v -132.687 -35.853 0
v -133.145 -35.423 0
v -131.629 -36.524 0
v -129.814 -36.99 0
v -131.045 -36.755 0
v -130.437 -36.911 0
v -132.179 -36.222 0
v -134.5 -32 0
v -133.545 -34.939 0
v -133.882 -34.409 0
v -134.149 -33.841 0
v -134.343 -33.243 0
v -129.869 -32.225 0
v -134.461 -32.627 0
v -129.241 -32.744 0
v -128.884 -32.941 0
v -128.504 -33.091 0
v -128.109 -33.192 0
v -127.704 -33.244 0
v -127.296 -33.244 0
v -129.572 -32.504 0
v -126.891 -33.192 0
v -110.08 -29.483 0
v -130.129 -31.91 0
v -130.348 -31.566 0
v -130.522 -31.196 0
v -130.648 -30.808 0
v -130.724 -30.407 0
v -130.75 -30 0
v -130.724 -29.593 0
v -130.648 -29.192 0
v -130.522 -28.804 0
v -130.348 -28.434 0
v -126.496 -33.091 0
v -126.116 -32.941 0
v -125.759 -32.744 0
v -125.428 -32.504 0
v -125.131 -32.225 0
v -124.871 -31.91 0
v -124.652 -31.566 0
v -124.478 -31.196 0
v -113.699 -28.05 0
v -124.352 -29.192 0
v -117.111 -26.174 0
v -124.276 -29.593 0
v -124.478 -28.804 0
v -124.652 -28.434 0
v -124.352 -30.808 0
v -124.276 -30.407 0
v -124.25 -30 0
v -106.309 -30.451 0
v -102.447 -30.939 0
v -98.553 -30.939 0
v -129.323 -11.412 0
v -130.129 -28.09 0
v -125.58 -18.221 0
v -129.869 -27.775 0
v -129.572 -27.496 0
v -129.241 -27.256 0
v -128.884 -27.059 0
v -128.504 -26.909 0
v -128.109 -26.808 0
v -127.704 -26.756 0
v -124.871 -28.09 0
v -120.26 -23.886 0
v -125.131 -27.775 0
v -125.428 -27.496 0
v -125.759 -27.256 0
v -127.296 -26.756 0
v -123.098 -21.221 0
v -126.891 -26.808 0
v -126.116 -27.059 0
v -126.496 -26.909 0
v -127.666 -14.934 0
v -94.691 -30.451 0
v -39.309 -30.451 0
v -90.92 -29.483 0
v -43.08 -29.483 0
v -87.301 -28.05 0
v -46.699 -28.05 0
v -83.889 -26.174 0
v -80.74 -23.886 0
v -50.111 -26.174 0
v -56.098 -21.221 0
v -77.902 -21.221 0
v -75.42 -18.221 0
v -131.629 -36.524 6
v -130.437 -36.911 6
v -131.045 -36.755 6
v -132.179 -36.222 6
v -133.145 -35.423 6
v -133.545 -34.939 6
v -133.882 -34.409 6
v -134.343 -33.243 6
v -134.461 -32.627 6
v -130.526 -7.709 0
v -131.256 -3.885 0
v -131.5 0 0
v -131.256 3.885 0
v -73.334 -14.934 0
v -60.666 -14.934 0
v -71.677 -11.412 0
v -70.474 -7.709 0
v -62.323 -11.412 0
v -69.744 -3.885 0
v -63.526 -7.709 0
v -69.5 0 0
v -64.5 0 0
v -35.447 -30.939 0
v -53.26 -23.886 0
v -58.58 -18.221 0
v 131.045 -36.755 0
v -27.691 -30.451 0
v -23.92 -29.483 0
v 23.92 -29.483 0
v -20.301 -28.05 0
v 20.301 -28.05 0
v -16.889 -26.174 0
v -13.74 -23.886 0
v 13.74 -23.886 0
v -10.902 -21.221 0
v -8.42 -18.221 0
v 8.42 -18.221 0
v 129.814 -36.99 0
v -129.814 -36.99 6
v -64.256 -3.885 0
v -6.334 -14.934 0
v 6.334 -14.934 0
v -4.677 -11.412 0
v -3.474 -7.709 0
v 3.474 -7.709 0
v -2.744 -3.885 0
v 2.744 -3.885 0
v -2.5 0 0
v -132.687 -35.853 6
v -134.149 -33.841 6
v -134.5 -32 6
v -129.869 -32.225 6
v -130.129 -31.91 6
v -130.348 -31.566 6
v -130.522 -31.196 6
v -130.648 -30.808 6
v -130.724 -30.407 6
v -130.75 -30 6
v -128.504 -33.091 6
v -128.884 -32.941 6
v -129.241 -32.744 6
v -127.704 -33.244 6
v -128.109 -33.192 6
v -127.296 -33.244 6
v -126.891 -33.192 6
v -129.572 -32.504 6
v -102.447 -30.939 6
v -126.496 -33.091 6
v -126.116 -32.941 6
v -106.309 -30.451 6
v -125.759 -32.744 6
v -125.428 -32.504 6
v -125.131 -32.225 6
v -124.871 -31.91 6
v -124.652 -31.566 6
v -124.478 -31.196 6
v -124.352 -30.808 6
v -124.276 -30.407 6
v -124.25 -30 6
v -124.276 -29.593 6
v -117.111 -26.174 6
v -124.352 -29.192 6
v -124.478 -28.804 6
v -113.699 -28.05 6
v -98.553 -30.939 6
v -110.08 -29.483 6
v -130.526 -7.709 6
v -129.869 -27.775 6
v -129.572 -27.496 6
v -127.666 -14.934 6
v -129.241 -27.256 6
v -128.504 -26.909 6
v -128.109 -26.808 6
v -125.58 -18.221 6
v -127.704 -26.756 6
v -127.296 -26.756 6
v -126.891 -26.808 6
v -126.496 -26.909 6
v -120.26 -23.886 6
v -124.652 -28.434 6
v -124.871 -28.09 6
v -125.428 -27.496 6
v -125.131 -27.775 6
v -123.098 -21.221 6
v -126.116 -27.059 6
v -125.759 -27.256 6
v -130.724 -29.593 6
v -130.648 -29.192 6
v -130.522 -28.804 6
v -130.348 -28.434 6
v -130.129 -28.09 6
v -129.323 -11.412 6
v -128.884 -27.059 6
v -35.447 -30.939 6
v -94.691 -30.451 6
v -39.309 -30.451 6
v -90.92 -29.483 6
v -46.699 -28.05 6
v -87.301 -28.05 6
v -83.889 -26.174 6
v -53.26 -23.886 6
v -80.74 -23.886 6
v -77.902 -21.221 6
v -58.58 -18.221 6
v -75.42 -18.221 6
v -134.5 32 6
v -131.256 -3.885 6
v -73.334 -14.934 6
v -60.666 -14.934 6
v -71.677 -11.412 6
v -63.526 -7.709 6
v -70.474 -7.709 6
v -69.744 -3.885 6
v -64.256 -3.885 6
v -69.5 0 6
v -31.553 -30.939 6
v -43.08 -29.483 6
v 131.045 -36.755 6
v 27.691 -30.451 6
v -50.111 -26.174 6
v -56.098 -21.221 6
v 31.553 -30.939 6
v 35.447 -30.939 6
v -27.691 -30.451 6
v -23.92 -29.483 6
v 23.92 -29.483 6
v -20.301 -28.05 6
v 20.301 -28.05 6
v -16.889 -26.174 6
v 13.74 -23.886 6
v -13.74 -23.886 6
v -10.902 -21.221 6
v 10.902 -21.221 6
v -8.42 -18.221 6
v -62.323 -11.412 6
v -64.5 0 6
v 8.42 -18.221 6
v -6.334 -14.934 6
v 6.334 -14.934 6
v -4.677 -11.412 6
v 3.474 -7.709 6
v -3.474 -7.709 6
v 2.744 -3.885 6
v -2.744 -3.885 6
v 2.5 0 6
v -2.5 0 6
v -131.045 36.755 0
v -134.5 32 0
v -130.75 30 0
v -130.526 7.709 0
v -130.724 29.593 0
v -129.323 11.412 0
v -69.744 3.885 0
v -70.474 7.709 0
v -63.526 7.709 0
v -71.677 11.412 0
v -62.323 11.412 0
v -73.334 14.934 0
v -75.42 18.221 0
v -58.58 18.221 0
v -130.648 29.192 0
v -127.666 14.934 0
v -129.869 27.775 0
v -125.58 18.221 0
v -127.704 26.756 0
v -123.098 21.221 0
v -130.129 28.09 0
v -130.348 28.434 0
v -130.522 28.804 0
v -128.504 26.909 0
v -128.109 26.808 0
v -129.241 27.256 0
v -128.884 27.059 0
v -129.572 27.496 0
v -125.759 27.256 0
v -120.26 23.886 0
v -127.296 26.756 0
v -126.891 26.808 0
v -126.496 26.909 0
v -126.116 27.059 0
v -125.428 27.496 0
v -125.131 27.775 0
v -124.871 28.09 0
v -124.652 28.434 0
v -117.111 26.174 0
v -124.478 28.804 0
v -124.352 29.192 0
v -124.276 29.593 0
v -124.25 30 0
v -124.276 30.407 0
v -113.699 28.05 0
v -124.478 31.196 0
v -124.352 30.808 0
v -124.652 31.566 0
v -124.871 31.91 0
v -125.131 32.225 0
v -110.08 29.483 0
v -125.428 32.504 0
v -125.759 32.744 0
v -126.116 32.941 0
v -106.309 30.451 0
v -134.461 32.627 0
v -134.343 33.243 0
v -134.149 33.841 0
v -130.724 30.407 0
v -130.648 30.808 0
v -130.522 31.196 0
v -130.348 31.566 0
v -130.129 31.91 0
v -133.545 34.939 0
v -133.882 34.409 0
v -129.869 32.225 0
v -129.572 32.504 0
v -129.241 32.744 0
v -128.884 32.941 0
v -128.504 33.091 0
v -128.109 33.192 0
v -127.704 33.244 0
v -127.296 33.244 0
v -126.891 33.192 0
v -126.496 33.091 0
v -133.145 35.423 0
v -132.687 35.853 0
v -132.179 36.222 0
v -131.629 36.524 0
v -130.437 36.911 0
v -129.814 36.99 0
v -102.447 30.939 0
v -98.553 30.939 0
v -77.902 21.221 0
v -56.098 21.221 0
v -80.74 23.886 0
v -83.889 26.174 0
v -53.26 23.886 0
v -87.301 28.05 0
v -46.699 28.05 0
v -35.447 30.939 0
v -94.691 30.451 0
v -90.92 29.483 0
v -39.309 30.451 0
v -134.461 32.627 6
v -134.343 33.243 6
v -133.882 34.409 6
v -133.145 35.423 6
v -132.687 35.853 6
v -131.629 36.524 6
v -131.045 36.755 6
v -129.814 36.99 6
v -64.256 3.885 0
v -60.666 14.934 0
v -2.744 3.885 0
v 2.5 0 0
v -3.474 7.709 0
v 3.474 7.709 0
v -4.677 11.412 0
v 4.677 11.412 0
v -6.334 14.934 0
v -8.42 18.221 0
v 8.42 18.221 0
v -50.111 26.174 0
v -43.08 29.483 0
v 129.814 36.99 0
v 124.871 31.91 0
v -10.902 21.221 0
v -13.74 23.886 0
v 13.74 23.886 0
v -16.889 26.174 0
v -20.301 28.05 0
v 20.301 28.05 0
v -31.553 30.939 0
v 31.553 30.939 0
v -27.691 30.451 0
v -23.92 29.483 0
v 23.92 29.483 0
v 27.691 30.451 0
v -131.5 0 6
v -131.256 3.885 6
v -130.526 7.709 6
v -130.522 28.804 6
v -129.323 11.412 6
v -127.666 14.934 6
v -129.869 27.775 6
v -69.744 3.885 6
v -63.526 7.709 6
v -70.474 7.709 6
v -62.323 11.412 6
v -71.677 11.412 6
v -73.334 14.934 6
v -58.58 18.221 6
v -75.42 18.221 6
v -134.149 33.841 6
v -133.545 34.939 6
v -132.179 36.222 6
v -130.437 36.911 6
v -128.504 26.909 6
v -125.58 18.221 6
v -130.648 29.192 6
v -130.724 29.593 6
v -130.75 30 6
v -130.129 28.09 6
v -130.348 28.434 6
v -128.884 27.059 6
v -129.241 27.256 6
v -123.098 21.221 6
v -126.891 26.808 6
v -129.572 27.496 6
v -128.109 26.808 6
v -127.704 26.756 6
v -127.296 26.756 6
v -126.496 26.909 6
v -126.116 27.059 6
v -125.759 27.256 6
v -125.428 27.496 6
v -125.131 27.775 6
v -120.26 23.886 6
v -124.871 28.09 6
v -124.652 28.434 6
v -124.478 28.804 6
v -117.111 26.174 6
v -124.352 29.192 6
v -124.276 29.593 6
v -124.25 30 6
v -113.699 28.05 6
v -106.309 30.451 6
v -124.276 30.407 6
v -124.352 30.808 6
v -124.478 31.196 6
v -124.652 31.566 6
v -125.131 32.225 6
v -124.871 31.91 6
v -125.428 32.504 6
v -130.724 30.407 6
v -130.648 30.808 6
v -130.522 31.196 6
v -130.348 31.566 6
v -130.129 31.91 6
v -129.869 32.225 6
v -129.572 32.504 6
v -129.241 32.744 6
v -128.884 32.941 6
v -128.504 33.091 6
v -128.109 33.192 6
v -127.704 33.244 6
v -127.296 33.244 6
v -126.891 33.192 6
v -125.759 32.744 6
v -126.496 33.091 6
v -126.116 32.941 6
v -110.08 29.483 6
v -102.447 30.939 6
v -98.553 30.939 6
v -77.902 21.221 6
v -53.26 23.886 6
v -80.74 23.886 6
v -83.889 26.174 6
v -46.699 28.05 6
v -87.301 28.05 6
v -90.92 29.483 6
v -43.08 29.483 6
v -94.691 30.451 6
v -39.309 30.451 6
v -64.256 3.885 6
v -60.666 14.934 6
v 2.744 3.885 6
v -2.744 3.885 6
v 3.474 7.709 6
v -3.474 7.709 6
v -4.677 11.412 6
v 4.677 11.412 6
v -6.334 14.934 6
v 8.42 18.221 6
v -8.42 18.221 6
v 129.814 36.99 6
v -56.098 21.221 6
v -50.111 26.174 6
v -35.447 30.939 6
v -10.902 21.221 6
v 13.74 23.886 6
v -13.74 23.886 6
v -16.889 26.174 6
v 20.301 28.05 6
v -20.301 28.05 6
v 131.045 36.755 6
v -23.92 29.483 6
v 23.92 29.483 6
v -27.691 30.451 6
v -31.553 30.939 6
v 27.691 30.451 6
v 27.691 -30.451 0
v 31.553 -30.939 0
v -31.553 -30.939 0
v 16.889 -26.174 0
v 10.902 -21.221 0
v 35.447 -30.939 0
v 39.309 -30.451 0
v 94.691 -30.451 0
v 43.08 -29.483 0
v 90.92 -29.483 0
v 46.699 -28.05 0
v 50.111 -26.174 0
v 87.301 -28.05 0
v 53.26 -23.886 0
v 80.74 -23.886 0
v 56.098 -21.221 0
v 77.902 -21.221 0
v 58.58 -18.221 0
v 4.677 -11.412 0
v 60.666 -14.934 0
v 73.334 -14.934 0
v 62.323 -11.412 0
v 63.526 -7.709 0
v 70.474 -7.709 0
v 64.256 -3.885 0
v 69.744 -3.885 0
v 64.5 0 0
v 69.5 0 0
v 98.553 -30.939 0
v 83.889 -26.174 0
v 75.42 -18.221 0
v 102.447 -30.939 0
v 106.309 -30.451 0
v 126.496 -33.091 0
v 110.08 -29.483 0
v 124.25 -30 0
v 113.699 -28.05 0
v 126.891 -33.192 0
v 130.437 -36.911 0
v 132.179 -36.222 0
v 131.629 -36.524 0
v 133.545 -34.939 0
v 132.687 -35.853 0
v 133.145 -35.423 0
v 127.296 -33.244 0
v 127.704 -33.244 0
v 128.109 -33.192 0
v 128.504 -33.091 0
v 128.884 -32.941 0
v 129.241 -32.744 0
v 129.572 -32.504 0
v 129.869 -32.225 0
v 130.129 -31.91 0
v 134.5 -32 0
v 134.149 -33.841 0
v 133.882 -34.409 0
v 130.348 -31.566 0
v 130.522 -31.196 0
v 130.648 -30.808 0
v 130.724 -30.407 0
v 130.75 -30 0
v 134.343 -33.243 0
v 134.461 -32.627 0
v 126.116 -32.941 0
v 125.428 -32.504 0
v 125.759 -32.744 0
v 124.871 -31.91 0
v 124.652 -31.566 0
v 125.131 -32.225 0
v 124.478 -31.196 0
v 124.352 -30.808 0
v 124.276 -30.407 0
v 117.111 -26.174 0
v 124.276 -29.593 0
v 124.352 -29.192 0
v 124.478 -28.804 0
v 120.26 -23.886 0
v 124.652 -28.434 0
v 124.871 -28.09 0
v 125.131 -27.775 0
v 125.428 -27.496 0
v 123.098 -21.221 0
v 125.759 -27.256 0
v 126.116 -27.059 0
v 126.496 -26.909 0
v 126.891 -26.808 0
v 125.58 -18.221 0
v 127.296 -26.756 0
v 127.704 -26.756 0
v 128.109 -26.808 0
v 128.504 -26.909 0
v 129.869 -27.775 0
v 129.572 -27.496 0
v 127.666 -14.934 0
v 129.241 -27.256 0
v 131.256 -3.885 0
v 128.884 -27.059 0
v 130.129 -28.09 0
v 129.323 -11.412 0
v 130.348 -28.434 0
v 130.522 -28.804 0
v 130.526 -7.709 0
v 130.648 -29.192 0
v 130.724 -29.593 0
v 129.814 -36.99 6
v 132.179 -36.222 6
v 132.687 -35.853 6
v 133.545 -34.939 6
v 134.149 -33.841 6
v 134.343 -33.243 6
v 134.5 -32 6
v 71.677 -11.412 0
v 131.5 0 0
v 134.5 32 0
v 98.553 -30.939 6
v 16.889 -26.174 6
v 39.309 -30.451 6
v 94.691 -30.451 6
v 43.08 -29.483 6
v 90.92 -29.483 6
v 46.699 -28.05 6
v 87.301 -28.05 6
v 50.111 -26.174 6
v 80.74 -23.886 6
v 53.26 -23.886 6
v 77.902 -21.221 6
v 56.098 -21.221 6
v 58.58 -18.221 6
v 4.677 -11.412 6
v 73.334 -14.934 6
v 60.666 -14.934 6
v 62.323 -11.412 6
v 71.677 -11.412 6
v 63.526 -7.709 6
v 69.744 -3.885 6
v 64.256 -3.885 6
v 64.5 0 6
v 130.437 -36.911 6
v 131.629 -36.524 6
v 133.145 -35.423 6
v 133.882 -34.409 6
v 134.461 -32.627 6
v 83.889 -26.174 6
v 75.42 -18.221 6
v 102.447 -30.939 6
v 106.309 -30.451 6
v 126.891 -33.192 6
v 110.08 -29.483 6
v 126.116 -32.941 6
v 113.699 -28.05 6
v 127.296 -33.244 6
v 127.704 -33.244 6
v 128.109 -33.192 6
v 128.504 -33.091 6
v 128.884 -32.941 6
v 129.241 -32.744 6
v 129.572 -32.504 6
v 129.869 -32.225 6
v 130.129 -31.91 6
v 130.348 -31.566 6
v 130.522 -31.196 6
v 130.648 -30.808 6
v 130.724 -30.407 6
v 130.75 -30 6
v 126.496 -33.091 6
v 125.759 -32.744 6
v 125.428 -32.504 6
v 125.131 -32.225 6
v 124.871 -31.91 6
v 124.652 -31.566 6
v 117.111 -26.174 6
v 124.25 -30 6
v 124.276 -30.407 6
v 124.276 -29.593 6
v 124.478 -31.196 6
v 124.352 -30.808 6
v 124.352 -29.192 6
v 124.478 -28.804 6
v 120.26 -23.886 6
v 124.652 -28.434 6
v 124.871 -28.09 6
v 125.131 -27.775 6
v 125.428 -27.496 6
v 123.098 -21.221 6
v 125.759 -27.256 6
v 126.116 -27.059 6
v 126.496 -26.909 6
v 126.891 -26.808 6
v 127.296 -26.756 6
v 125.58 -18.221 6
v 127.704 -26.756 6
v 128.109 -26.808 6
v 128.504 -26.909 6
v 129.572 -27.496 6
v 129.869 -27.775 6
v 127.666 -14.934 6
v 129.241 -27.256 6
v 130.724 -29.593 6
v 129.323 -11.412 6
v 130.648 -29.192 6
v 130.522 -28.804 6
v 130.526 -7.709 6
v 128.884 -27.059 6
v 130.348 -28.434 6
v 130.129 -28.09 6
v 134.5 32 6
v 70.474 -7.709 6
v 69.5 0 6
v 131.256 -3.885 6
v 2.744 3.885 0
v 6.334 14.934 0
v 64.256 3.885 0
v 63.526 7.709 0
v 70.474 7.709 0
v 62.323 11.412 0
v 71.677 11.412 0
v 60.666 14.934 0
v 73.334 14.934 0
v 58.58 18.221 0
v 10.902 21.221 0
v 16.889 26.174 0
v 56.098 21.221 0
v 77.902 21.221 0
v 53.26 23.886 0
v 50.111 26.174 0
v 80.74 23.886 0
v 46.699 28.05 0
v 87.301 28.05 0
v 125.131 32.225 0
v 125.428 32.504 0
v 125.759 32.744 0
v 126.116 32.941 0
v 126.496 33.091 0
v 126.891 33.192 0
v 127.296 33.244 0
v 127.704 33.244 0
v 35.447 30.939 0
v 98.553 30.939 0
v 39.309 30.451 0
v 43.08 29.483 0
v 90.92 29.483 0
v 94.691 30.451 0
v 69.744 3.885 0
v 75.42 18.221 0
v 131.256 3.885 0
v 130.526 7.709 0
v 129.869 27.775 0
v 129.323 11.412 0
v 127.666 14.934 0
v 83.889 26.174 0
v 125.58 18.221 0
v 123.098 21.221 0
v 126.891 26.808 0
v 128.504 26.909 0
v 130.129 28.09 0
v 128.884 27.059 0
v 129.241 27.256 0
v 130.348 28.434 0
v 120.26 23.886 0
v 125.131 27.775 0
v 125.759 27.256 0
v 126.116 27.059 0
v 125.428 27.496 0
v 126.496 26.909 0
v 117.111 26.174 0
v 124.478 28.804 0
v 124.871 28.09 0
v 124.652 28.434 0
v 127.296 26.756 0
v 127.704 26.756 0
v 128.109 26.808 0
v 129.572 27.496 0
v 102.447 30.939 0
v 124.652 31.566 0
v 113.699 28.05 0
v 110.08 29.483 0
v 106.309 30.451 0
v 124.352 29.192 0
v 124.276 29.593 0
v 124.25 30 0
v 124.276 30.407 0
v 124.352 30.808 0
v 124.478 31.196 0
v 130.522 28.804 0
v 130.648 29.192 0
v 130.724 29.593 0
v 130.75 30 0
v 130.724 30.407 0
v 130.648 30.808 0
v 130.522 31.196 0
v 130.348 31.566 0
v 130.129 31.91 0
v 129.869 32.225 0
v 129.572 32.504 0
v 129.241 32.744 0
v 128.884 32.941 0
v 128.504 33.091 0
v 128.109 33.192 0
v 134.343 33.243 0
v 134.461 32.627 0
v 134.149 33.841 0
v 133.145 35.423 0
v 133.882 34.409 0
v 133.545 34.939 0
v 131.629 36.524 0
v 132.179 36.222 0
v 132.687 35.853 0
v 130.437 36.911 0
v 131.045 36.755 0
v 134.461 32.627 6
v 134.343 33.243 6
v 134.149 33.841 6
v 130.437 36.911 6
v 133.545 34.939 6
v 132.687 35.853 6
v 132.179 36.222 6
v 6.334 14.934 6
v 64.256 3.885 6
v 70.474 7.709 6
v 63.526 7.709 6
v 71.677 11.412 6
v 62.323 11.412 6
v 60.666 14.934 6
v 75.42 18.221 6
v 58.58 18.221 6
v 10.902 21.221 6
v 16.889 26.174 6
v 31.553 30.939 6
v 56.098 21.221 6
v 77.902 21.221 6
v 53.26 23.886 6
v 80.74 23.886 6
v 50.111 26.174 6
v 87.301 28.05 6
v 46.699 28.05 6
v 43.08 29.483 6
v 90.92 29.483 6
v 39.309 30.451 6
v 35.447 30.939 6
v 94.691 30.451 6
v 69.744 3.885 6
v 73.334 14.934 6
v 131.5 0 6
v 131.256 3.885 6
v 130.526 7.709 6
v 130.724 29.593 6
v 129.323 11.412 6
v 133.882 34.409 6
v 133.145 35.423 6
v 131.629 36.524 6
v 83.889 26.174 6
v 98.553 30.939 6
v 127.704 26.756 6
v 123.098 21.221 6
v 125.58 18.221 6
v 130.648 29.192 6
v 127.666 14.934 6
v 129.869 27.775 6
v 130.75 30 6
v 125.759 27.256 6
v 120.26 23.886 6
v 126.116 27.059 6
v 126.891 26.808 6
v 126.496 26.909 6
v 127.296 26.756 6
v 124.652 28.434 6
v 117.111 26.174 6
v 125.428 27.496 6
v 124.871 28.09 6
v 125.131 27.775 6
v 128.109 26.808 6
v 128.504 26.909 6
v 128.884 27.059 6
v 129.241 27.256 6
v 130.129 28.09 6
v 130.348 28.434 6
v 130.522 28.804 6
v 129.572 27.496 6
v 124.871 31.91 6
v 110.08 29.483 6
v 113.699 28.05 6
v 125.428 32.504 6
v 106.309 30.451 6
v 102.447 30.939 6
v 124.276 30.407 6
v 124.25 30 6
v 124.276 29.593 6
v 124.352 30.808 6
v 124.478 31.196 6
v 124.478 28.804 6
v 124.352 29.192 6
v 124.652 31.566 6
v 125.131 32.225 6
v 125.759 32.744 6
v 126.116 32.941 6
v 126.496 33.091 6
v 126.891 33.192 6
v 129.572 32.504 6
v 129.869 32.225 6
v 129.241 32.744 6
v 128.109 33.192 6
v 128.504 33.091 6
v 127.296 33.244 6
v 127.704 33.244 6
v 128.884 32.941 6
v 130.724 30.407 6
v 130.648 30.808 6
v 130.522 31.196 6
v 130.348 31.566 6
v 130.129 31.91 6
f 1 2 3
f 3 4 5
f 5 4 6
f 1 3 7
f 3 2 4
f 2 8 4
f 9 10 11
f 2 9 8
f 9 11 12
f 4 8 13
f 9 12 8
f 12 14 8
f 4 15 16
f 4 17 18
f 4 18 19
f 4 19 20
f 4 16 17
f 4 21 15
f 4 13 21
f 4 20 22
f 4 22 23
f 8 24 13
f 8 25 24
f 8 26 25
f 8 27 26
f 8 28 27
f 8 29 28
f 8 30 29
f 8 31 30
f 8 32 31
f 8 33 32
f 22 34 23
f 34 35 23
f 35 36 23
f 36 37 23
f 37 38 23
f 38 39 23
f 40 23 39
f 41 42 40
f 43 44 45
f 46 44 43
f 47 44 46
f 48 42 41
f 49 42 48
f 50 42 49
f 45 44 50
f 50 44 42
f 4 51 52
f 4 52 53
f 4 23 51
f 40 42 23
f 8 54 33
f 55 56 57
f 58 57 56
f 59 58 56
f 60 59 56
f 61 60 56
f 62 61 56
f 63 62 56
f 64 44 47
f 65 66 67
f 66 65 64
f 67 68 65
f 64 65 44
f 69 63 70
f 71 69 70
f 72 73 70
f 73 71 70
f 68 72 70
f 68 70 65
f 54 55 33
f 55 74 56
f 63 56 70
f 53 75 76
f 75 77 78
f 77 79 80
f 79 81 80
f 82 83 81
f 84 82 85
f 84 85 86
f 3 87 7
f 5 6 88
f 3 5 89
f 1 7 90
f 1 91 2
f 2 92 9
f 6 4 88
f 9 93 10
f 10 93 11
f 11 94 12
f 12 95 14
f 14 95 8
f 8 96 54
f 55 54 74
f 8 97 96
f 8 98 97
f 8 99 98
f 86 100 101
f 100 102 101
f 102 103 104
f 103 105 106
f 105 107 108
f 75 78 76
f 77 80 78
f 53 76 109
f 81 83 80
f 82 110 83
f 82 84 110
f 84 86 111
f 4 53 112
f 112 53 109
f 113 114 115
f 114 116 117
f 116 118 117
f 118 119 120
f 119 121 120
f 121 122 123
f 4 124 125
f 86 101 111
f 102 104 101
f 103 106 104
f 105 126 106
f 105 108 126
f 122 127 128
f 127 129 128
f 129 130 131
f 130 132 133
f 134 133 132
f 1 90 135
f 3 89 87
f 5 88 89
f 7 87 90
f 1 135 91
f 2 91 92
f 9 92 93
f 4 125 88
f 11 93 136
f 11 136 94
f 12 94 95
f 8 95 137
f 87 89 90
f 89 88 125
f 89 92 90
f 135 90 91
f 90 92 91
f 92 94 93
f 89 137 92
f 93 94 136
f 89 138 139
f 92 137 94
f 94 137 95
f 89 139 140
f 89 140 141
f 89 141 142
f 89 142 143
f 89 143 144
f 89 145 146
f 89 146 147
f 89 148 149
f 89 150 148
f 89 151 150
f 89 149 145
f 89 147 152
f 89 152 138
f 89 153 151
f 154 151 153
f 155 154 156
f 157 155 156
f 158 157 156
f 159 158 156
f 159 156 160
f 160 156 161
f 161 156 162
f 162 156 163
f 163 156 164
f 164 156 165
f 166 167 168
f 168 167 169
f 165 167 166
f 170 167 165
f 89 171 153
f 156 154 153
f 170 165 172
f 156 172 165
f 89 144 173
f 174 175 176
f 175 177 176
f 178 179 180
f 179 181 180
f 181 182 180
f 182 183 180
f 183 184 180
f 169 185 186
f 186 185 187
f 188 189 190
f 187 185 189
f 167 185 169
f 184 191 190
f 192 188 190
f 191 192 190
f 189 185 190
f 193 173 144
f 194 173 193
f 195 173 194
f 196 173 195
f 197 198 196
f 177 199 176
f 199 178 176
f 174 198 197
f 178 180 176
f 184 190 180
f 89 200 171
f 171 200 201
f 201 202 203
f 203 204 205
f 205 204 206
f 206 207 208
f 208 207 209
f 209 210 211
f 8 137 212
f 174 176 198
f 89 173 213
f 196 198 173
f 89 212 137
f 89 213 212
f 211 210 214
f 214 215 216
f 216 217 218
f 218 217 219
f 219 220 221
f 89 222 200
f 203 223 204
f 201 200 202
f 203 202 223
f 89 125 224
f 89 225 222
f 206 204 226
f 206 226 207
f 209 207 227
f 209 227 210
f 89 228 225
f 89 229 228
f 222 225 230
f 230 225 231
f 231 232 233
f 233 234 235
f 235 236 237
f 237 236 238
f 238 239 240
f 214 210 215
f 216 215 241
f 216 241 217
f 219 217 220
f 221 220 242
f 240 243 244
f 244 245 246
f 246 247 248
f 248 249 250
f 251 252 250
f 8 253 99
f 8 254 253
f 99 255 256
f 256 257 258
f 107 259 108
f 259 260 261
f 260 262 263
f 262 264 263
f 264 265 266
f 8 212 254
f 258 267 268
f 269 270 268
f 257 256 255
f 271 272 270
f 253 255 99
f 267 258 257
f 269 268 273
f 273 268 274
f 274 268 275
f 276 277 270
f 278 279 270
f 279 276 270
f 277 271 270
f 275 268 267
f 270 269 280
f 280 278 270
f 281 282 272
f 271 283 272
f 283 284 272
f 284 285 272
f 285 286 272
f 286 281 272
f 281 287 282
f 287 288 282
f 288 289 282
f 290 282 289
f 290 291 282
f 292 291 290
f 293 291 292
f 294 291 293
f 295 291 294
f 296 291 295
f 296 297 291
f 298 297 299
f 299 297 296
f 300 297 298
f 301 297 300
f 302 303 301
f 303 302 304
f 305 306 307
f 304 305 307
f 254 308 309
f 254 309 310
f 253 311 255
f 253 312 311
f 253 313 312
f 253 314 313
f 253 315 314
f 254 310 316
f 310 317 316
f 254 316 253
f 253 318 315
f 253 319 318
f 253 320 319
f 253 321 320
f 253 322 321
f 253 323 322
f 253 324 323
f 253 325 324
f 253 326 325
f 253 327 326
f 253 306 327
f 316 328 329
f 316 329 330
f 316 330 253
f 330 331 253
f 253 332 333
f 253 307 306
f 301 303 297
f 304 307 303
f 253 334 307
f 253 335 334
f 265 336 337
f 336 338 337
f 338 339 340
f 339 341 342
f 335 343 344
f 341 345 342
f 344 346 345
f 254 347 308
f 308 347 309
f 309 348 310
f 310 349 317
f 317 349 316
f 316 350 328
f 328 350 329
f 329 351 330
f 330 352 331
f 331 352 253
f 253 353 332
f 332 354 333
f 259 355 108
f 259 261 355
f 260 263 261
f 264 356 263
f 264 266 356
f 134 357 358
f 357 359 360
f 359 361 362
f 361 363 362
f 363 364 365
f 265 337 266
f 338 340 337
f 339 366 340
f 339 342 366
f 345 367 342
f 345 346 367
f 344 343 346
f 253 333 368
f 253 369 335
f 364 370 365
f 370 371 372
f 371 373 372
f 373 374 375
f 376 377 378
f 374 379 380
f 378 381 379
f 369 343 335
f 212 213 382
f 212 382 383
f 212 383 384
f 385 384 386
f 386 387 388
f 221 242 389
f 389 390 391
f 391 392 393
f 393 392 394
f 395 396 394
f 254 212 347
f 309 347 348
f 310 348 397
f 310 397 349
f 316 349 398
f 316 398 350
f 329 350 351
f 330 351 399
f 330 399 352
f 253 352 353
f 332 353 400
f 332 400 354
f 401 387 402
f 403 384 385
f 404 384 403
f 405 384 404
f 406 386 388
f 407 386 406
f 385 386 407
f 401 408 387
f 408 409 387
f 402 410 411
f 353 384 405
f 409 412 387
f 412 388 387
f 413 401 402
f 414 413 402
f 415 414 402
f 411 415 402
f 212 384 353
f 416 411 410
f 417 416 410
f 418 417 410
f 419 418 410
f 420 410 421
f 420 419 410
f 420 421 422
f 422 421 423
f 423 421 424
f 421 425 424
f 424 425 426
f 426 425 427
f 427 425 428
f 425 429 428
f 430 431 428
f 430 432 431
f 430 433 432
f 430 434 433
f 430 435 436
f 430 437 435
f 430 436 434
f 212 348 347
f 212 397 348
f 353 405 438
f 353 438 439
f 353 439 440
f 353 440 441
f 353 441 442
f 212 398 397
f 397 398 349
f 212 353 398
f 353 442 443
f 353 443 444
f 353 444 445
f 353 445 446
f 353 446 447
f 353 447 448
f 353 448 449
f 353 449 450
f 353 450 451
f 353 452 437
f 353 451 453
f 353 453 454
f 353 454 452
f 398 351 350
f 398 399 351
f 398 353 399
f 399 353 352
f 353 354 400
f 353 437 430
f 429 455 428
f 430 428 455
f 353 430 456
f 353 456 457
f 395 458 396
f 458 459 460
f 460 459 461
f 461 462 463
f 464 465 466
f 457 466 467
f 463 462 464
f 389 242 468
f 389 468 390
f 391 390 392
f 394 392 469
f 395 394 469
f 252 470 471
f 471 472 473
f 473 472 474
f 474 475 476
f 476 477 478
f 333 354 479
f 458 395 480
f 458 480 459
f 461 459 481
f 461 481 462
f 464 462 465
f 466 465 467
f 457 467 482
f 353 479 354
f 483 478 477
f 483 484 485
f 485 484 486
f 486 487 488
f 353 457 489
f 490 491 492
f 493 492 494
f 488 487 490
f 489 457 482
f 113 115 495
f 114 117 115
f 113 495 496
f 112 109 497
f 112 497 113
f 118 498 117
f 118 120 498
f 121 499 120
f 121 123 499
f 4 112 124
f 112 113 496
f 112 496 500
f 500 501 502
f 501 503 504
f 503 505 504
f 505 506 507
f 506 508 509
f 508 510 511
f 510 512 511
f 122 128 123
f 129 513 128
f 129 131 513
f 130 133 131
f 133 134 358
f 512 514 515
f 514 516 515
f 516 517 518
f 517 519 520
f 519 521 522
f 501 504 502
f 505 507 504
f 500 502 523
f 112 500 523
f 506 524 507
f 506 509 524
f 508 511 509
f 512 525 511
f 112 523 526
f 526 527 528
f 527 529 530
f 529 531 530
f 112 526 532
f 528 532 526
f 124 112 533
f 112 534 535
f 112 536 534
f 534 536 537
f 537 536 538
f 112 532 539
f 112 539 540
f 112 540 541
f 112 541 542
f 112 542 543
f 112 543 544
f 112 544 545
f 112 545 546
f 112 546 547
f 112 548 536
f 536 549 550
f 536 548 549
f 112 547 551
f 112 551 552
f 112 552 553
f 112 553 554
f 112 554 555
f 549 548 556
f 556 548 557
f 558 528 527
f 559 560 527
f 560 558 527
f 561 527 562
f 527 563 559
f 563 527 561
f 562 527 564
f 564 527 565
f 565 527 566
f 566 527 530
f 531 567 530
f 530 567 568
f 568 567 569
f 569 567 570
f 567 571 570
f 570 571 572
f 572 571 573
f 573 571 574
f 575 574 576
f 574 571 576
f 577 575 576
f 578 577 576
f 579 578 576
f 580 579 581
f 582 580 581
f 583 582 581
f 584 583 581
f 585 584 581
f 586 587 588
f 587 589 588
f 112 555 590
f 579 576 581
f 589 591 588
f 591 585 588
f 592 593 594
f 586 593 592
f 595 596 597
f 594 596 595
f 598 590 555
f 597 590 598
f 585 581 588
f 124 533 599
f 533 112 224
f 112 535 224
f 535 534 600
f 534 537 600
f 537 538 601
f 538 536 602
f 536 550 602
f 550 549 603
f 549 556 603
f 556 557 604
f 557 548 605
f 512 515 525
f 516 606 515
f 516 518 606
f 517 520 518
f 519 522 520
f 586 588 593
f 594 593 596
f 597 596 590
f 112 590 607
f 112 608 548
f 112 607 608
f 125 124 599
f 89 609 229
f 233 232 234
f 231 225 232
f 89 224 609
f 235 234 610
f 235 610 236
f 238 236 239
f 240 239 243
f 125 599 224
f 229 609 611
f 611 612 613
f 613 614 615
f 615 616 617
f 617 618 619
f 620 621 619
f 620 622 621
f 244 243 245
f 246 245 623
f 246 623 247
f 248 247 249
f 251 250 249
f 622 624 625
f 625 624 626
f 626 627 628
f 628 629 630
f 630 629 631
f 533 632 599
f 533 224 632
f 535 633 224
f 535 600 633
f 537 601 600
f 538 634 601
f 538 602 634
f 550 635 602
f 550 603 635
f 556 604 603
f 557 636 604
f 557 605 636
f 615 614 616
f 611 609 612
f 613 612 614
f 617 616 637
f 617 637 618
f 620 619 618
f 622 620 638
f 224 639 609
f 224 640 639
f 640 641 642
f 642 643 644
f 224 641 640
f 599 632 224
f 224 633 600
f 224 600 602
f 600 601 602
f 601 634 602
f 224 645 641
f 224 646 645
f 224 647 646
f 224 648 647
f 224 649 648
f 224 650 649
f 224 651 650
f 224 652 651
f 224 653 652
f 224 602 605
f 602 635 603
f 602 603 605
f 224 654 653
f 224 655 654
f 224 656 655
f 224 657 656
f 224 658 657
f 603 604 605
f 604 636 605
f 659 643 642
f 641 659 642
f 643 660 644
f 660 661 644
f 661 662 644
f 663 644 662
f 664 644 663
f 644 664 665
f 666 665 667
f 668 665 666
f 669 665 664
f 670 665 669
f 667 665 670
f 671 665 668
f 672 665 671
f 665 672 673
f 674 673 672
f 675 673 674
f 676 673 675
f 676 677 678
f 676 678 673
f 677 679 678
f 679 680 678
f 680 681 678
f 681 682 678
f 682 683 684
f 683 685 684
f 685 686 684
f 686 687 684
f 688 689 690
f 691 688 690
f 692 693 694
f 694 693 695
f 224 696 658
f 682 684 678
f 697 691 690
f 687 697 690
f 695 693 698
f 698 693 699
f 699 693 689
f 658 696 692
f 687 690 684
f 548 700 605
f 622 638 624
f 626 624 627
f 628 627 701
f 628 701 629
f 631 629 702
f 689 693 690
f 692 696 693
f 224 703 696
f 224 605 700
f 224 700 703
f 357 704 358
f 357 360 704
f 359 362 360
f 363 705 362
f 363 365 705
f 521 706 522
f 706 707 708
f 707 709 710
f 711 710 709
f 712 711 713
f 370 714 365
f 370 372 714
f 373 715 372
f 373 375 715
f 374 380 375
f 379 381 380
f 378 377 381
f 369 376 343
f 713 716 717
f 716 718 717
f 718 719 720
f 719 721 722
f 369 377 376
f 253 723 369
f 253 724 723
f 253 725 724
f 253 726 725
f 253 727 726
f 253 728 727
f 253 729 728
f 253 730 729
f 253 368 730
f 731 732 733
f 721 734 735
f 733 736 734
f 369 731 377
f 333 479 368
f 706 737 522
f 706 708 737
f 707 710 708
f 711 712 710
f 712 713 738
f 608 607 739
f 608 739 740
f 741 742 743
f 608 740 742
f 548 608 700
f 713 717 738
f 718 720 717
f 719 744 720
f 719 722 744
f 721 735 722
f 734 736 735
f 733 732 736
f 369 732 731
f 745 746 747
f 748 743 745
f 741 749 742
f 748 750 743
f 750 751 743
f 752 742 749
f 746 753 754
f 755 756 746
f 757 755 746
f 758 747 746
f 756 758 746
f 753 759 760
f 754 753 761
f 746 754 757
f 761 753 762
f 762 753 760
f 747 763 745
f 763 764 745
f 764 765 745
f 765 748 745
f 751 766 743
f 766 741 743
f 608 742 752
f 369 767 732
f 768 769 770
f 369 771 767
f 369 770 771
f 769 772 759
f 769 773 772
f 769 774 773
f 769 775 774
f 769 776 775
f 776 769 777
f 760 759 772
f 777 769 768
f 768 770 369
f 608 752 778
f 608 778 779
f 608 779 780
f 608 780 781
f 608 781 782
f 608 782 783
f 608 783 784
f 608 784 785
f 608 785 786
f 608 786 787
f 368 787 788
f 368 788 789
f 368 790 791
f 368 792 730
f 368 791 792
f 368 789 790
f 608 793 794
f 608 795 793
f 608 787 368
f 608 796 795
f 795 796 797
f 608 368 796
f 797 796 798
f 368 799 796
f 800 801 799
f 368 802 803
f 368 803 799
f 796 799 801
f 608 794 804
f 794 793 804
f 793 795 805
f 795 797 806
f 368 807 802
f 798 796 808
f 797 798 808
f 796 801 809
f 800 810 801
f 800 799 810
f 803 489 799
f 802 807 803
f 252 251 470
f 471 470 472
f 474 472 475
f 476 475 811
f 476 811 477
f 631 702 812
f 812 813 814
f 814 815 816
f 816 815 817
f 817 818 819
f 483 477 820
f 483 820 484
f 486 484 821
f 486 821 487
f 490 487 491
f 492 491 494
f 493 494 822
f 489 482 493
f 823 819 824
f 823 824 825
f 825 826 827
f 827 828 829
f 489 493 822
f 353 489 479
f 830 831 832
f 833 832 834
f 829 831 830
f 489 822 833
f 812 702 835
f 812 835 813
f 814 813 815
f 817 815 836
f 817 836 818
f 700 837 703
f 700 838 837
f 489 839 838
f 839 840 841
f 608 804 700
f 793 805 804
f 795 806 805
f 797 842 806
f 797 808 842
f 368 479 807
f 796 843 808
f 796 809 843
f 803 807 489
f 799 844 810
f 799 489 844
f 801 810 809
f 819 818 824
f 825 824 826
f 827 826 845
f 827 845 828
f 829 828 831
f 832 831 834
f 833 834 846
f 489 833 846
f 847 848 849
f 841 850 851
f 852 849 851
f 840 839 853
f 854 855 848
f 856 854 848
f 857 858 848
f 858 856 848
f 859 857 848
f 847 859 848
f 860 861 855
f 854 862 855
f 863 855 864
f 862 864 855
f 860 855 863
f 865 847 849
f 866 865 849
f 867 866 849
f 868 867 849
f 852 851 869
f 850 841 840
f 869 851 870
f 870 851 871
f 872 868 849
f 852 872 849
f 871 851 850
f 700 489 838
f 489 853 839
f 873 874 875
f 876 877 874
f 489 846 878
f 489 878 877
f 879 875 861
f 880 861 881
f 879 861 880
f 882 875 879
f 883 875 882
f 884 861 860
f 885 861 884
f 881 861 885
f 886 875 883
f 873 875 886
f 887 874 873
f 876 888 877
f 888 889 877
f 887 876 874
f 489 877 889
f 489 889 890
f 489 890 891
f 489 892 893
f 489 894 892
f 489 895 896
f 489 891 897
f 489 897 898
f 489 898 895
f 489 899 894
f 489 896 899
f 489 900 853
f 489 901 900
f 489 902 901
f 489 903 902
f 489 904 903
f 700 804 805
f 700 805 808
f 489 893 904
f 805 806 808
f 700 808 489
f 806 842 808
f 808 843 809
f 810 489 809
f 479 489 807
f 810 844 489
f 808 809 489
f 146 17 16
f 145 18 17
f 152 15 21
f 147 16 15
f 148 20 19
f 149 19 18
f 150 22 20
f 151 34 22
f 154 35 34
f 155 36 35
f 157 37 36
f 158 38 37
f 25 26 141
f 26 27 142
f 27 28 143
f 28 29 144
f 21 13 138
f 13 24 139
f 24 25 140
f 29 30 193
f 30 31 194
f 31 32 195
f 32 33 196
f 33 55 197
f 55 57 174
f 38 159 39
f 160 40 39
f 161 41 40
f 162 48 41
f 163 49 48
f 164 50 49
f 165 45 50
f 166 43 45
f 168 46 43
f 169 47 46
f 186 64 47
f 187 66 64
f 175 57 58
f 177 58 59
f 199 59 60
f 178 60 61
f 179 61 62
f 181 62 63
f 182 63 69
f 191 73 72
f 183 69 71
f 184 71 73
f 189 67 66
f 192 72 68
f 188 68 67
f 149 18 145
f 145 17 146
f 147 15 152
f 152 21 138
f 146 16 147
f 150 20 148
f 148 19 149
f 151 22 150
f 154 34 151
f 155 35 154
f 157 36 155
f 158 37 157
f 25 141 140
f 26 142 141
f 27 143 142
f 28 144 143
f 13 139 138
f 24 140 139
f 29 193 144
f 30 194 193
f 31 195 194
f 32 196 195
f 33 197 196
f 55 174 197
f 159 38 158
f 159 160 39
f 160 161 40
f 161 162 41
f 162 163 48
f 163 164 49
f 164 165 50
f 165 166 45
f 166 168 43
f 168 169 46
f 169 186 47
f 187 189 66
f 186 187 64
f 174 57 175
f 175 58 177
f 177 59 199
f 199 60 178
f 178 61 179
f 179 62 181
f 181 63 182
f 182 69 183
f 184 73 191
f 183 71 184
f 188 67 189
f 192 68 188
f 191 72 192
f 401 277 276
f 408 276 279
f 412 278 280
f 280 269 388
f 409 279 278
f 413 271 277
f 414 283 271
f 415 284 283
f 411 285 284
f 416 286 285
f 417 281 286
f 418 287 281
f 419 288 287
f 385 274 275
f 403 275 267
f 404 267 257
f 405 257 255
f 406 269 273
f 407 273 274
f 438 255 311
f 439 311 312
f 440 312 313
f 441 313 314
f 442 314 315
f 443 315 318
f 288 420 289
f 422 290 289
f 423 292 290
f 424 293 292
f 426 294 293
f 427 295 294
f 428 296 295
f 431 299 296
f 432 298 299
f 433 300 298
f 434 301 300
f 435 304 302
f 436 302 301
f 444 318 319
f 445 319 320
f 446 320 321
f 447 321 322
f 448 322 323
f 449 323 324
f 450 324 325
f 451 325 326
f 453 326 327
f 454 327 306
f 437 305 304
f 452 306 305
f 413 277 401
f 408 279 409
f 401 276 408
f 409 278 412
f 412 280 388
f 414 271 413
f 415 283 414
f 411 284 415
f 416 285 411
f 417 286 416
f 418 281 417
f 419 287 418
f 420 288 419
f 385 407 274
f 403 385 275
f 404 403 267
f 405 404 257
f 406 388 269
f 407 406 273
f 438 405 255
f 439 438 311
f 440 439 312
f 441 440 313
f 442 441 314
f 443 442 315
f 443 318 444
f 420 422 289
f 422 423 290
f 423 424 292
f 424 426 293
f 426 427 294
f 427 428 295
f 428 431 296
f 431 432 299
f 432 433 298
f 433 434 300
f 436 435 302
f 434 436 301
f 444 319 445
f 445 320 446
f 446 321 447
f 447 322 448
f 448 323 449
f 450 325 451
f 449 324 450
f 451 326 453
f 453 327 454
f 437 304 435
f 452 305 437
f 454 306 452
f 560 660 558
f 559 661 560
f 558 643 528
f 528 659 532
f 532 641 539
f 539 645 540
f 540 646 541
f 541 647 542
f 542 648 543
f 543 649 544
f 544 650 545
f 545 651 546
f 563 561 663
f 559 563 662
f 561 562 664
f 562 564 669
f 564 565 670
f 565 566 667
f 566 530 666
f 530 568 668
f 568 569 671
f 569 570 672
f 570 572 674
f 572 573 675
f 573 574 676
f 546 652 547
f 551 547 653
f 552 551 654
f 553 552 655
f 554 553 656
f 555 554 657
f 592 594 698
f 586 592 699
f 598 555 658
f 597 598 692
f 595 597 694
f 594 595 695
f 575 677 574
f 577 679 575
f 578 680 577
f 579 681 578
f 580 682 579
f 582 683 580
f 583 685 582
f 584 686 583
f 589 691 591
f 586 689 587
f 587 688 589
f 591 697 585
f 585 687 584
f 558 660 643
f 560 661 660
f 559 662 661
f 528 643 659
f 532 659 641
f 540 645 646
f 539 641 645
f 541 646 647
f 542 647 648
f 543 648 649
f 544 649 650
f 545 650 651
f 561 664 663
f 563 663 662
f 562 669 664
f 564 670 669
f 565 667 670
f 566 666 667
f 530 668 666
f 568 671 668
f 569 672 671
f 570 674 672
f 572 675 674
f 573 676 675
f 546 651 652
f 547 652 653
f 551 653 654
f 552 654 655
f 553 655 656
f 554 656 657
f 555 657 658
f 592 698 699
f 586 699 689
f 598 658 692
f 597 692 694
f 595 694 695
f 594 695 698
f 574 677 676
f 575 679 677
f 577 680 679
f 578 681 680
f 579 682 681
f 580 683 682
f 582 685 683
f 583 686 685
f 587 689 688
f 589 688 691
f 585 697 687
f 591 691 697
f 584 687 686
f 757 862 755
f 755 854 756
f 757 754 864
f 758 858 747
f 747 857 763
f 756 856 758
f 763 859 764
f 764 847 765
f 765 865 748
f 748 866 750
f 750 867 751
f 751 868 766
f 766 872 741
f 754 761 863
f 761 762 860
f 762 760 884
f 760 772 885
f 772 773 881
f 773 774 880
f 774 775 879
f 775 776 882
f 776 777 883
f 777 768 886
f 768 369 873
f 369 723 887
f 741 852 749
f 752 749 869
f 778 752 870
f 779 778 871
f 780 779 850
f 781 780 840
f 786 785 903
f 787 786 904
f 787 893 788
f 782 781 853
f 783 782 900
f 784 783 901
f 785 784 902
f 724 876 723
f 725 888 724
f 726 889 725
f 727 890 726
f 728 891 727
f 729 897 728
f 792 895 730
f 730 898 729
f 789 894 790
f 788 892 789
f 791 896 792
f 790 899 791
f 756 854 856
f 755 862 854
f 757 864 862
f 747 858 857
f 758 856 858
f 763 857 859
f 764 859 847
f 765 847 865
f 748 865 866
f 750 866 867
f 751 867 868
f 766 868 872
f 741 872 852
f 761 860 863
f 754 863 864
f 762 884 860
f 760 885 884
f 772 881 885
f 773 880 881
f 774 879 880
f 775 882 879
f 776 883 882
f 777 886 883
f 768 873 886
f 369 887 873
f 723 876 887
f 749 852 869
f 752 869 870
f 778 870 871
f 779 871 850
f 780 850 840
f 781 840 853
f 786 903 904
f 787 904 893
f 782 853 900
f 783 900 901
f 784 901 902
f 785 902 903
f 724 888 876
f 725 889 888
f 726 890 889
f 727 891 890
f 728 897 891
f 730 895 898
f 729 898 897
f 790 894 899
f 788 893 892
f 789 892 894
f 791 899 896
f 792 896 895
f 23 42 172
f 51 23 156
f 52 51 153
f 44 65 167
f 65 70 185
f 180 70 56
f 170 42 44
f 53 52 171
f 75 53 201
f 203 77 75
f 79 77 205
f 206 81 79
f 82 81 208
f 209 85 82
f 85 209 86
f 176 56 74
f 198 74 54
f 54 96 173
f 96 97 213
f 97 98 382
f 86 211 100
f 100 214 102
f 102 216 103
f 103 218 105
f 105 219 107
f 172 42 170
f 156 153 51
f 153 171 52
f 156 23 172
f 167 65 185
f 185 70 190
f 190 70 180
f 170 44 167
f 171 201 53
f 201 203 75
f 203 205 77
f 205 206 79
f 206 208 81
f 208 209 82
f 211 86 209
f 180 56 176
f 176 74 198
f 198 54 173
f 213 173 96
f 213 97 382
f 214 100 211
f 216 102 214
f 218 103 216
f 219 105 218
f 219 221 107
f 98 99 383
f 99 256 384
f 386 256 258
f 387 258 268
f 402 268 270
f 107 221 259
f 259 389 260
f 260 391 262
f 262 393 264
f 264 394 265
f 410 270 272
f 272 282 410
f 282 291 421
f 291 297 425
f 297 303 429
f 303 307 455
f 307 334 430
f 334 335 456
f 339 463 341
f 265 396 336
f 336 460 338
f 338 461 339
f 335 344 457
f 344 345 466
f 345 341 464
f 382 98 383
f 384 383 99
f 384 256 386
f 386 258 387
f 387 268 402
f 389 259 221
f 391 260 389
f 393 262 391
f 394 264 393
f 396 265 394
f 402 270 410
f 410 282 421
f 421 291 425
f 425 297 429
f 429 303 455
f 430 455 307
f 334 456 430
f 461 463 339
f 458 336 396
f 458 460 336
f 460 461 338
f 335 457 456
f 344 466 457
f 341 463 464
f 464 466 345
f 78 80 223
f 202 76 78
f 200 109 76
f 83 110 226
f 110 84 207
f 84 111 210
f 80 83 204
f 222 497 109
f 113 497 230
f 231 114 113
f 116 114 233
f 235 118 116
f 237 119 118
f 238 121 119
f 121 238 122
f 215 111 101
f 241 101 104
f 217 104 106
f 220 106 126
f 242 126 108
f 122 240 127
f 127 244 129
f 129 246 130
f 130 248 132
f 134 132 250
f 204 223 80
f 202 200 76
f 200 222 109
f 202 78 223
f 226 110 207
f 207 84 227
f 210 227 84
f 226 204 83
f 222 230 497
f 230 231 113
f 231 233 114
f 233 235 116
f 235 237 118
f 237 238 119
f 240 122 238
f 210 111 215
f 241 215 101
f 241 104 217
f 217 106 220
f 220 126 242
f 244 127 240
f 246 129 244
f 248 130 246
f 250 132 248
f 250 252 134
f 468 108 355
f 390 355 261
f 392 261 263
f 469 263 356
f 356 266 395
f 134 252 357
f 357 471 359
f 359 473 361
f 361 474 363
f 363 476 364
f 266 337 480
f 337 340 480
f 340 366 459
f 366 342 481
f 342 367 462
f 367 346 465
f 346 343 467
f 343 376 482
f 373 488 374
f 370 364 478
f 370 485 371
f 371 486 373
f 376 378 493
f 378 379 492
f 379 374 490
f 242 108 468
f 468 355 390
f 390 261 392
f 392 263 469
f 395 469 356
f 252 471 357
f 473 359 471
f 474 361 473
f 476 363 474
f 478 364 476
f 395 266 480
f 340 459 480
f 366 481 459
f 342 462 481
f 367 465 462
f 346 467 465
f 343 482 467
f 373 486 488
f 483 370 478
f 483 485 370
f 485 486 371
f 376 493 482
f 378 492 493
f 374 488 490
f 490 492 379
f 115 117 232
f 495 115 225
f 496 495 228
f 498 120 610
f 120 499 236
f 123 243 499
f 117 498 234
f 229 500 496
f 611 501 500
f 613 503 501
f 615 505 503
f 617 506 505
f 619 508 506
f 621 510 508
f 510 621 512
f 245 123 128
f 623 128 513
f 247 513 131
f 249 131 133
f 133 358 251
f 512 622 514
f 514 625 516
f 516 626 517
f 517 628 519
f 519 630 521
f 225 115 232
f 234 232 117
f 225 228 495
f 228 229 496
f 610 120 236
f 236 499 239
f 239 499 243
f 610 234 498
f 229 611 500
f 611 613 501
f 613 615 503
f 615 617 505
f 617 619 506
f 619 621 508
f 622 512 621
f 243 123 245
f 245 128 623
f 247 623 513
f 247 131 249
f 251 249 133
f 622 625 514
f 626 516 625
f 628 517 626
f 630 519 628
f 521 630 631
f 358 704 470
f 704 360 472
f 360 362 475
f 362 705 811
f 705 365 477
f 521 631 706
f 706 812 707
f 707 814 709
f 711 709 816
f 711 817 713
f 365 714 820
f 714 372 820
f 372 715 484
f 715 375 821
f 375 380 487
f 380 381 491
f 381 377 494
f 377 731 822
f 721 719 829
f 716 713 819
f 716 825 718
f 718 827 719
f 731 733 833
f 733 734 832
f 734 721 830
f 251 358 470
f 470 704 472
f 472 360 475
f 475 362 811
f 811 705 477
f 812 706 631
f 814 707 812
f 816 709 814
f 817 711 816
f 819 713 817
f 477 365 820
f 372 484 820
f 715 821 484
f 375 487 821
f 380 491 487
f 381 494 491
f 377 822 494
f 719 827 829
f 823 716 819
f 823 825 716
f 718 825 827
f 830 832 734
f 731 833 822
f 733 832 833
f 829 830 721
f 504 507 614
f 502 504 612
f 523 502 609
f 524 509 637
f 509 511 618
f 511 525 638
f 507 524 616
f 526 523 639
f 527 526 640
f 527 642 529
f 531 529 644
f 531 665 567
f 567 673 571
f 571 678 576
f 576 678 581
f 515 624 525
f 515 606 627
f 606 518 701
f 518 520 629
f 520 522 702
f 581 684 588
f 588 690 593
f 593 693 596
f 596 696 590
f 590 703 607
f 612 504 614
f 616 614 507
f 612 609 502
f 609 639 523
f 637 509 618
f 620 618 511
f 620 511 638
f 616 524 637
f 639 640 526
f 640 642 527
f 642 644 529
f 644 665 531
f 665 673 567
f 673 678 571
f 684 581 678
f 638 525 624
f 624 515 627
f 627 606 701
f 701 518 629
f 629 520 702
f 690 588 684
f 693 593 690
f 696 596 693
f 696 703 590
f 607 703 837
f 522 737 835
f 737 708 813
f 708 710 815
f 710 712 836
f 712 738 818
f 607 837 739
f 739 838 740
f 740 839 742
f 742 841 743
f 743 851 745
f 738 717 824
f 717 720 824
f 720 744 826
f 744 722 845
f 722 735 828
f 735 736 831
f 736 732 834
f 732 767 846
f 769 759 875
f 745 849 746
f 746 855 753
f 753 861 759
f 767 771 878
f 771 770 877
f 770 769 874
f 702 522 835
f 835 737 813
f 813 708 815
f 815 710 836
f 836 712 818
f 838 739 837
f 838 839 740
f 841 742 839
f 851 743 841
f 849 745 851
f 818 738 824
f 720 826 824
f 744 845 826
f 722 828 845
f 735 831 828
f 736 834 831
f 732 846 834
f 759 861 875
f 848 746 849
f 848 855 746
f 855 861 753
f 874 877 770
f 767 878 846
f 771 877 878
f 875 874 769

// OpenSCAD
$fn = 50;

difference() {
	union() {
		hull() {
			translate(v = [-129.5, 32.0, 0]) {
				cylinder(h = 6, r = 5);
			}
			translate(v = [129.5, 32.0, 0]) {
				cylinder(h = 6, r = 5);
			}
			translate(v = [-129.5, -32.0, 0]) {
				cylinder(h = 6, r = 5);
			}
			translate(v = [129.5, -32.0, 0]) {
				cylinder(h = 6, r = 5);
			}
		}
	}
	union() {
		translate(v = [-127.5, -30.0, -100.0]) {
			cylinder(h = 200, r = 3.25);
		}
		translate(v = [-127.5, 30.0, -100.0]) {
			cylinder(h = 200, r = 3.25);
		}
		translate(v = [127.5, -30.0, -100.0]) {
			cylinder(h = 200, r = 3.25);
		}
		translate(v = [127.5, 30.0, -100.0]) {
			cylinder(h = 200, r = 3.25);
		}
		translate(v = [-127.5, -30.0, -100.0]) {
			cylinder(h = 200, r = 1.8);
		}
		translate(v = [-127.5, 30.0, -100.0]) {
			cylinder(h = 200, r = 1.8);
		}
		translate(v = [127.5, -30.0, -100.0]) {
			cylinder(h = 200, r = 1.8);
		}
		translate(v = [127.5, 30.0, -100.0]) {
			cylinder(h = 200, r = 1.8);
		}
		translate(v = [-100.5, 0, 0.0]) {
			cylinder(h = 6, r = 31.0);
		}
		translate(v = [-33.5, 0, 0.0]) {
			cylinder(h = 6, r = 31.0);
		}
		translate(v = [33.5, 0, 0.0]) {
			cylinder(h = 6, r = 31.0);
		}
		translate(v = [100.5, 0, 0.0]) {
			cylinder(h = 6, r = 31.0);
		}
	}
}
